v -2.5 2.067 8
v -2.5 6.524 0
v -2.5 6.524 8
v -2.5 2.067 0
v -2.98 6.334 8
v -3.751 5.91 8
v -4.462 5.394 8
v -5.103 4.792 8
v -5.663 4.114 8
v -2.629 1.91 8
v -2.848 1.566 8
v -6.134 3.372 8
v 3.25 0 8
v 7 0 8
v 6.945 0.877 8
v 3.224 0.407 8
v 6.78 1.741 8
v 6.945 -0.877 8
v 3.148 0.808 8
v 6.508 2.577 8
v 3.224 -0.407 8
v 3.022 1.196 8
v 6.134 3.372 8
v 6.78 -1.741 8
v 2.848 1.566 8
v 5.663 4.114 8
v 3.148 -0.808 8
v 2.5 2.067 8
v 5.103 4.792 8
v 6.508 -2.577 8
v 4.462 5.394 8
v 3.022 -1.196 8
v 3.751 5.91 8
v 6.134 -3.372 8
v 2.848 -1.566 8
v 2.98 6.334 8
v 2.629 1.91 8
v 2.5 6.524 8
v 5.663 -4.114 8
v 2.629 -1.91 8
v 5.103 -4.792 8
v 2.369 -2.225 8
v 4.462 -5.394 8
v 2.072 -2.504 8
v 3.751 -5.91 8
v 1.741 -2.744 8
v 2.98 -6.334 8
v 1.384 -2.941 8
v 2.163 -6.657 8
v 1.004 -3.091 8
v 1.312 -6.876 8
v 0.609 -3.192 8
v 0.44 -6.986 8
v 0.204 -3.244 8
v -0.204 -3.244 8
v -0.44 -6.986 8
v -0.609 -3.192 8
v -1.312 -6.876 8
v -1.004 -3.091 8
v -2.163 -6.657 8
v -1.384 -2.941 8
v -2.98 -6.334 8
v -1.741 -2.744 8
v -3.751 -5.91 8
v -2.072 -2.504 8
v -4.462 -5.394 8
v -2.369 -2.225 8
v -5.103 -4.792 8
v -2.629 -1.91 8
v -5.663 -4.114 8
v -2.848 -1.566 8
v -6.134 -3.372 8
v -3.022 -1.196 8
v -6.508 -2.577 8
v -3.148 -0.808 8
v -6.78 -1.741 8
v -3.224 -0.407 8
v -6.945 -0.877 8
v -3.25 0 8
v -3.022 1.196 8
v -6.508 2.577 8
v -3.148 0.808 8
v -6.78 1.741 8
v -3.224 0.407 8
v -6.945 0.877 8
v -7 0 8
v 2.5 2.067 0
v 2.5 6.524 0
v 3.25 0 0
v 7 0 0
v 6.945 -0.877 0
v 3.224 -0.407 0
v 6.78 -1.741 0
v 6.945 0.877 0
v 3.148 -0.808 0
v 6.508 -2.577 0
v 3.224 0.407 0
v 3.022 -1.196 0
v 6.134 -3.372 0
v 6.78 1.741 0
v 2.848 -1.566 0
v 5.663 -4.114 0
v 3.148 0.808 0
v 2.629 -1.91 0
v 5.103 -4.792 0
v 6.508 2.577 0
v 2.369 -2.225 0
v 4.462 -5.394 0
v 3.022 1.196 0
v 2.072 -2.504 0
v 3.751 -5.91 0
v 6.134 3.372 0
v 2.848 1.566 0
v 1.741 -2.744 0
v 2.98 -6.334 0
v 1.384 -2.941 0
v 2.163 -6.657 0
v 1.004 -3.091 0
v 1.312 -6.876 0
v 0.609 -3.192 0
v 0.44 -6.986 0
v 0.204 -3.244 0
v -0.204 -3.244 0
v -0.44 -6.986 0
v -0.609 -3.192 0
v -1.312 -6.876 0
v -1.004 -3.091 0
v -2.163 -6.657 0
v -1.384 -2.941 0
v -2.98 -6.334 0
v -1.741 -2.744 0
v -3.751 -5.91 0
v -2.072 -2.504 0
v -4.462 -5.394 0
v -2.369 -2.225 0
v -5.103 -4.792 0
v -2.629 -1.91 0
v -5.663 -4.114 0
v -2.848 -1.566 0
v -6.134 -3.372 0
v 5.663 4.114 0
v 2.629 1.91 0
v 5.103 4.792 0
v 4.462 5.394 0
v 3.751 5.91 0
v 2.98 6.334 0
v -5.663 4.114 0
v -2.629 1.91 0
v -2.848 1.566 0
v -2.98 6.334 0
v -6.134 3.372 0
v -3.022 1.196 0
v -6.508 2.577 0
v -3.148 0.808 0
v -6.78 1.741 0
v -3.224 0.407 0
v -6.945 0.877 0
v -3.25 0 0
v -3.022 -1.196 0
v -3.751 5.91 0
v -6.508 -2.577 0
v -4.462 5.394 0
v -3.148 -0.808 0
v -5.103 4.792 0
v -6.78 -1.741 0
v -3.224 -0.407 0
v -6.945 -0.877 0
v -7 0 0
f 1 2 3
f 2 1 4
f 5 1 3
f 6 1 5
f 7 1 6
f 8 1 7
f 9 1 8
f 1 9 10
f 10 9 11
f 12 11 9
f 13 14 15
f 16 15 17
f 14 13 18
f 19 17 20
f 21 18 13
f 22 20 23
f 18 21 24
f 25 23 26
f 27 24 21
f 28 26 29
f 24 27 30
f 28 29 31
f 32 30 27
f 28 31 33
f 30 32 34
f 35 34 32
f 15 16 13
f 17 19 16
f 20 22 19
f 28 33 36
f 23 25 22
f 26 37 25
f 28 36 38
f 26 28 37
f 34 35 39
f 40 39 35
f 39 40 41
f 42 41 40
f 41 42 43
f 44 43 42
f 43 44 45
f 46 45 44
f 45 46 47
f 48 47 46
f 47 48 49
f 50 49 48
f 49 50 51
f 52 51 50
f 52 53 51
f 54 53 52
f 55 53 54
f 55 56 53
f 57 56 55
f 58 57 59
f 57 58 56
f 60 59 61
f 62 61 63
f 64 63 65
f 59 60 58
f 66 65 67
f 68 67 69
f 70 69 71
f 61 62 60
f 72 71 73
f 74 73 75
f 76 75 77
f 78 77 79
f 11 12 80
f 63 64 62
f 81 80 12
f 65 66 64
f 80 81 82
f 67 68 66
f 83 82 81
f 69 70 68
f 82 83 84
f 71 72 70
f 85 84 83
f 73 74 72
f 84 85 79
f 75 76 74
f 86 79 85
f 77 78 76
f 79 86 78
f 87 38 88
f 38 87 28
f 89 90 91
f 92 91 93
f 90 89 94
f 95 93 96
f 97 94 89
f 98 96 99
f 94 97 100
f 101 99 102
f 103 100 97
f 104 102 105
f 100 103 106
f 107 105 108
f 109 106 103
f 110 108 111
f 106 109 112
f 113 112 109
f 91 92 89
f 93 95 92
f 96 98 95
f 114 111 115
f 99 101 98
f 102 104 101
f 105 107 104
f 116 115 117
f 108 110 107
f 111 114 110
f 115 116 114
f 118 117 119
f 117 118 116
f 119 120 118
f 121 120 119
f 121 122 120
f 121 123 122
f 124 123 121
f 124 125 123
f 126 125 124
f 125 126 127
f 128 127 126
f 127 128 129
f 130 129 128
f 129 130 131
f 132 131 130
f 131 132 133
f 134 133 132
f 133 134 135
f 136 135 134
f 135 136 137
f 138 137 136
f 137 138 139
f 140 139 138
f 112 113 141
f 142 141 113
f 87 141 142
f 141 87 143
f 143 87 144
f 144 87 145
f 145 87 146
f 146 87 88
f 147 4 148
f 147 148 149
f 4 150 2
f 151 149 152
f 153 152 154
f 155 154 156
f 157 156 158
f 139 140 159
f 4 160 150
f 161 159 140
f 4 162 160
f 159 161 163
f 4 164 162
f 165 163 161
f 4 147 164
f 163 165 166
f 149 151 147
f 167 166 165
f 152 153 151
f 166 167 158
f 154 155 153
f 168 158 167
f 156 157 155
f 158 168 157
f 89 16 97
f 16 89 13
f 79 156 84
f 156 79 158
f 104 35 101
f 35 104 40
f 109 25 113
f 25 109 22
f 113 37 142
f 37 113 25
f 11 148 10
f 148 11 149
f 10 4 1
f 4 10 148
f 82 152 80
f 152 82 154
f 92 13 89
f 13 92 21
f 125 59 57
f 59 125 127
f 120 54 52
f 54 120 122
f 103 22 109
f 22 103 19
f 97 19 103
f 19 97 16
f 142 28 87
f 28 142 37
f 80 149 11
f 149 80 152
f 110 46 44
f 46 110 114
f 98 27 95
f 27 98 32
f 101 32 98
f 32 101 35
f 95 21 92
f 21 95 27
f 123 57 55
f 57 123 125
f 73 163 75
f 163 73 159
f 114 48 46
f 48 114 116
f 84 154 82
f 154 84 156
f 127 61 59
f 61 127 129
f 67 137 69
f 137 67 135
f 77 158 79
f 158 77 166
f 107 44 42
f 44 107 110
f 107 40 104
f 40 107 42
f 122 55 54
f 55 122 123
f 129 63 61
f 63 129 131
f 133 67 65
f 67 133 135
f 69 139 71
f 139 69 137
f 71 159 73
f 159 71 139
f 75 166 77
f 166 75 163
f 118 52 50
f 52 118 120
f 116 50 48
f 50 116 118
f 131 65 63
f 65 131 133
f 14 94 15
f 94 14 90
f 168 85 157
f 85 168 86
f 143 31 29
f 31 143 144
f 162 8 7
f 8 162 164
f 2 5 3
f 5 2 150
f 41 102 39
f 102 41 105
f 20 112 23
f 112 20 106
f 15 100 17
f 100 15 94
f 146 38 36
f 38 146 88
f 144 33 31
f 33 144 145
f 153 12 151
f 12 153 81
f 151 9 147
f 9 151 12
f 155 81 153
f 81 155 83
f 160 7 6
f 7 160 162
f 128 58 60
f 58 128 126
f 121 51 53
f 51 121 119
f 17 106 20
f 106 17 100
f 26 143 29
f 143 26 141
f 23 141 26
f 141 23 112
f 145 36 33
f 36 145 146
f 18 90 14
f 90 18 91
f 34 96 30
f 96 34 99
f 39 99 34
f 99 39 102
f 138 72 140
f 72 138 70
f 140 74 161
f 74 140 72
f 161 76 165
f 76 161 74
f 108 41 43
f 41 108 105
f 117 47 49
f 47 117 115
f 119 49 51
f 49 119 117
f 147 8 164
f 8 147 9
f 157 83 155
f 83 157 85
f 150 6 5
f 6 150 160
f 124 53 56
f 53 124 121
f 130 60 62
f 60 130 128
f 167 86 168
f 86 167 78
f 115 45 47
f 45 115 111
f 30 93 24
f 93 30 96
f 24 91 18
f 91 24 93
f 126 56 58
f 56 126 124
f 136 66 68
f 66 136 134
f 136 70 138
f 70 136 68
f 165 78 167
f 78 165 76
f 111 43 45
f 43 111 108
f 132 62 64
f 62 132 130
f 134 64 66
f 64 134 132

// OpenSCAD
$fn = 50;


difference() {
	union() {
		cylinder(h = 8, r = 7.0000000000);
	}
	union() {
		#translate(v = [-2.5000000000, 0.0000000000, 0]) {
			cube(size = [5, 20, 8]);
		}
		translate(v = [0, 0, -100]) {
			cylinder(h = 200, r = 3.2500000000);
		}
		translate(v = [0, 0, -100]) {
			cylinder(h = 200, r = 1.8000000000);
		}
	}
}
